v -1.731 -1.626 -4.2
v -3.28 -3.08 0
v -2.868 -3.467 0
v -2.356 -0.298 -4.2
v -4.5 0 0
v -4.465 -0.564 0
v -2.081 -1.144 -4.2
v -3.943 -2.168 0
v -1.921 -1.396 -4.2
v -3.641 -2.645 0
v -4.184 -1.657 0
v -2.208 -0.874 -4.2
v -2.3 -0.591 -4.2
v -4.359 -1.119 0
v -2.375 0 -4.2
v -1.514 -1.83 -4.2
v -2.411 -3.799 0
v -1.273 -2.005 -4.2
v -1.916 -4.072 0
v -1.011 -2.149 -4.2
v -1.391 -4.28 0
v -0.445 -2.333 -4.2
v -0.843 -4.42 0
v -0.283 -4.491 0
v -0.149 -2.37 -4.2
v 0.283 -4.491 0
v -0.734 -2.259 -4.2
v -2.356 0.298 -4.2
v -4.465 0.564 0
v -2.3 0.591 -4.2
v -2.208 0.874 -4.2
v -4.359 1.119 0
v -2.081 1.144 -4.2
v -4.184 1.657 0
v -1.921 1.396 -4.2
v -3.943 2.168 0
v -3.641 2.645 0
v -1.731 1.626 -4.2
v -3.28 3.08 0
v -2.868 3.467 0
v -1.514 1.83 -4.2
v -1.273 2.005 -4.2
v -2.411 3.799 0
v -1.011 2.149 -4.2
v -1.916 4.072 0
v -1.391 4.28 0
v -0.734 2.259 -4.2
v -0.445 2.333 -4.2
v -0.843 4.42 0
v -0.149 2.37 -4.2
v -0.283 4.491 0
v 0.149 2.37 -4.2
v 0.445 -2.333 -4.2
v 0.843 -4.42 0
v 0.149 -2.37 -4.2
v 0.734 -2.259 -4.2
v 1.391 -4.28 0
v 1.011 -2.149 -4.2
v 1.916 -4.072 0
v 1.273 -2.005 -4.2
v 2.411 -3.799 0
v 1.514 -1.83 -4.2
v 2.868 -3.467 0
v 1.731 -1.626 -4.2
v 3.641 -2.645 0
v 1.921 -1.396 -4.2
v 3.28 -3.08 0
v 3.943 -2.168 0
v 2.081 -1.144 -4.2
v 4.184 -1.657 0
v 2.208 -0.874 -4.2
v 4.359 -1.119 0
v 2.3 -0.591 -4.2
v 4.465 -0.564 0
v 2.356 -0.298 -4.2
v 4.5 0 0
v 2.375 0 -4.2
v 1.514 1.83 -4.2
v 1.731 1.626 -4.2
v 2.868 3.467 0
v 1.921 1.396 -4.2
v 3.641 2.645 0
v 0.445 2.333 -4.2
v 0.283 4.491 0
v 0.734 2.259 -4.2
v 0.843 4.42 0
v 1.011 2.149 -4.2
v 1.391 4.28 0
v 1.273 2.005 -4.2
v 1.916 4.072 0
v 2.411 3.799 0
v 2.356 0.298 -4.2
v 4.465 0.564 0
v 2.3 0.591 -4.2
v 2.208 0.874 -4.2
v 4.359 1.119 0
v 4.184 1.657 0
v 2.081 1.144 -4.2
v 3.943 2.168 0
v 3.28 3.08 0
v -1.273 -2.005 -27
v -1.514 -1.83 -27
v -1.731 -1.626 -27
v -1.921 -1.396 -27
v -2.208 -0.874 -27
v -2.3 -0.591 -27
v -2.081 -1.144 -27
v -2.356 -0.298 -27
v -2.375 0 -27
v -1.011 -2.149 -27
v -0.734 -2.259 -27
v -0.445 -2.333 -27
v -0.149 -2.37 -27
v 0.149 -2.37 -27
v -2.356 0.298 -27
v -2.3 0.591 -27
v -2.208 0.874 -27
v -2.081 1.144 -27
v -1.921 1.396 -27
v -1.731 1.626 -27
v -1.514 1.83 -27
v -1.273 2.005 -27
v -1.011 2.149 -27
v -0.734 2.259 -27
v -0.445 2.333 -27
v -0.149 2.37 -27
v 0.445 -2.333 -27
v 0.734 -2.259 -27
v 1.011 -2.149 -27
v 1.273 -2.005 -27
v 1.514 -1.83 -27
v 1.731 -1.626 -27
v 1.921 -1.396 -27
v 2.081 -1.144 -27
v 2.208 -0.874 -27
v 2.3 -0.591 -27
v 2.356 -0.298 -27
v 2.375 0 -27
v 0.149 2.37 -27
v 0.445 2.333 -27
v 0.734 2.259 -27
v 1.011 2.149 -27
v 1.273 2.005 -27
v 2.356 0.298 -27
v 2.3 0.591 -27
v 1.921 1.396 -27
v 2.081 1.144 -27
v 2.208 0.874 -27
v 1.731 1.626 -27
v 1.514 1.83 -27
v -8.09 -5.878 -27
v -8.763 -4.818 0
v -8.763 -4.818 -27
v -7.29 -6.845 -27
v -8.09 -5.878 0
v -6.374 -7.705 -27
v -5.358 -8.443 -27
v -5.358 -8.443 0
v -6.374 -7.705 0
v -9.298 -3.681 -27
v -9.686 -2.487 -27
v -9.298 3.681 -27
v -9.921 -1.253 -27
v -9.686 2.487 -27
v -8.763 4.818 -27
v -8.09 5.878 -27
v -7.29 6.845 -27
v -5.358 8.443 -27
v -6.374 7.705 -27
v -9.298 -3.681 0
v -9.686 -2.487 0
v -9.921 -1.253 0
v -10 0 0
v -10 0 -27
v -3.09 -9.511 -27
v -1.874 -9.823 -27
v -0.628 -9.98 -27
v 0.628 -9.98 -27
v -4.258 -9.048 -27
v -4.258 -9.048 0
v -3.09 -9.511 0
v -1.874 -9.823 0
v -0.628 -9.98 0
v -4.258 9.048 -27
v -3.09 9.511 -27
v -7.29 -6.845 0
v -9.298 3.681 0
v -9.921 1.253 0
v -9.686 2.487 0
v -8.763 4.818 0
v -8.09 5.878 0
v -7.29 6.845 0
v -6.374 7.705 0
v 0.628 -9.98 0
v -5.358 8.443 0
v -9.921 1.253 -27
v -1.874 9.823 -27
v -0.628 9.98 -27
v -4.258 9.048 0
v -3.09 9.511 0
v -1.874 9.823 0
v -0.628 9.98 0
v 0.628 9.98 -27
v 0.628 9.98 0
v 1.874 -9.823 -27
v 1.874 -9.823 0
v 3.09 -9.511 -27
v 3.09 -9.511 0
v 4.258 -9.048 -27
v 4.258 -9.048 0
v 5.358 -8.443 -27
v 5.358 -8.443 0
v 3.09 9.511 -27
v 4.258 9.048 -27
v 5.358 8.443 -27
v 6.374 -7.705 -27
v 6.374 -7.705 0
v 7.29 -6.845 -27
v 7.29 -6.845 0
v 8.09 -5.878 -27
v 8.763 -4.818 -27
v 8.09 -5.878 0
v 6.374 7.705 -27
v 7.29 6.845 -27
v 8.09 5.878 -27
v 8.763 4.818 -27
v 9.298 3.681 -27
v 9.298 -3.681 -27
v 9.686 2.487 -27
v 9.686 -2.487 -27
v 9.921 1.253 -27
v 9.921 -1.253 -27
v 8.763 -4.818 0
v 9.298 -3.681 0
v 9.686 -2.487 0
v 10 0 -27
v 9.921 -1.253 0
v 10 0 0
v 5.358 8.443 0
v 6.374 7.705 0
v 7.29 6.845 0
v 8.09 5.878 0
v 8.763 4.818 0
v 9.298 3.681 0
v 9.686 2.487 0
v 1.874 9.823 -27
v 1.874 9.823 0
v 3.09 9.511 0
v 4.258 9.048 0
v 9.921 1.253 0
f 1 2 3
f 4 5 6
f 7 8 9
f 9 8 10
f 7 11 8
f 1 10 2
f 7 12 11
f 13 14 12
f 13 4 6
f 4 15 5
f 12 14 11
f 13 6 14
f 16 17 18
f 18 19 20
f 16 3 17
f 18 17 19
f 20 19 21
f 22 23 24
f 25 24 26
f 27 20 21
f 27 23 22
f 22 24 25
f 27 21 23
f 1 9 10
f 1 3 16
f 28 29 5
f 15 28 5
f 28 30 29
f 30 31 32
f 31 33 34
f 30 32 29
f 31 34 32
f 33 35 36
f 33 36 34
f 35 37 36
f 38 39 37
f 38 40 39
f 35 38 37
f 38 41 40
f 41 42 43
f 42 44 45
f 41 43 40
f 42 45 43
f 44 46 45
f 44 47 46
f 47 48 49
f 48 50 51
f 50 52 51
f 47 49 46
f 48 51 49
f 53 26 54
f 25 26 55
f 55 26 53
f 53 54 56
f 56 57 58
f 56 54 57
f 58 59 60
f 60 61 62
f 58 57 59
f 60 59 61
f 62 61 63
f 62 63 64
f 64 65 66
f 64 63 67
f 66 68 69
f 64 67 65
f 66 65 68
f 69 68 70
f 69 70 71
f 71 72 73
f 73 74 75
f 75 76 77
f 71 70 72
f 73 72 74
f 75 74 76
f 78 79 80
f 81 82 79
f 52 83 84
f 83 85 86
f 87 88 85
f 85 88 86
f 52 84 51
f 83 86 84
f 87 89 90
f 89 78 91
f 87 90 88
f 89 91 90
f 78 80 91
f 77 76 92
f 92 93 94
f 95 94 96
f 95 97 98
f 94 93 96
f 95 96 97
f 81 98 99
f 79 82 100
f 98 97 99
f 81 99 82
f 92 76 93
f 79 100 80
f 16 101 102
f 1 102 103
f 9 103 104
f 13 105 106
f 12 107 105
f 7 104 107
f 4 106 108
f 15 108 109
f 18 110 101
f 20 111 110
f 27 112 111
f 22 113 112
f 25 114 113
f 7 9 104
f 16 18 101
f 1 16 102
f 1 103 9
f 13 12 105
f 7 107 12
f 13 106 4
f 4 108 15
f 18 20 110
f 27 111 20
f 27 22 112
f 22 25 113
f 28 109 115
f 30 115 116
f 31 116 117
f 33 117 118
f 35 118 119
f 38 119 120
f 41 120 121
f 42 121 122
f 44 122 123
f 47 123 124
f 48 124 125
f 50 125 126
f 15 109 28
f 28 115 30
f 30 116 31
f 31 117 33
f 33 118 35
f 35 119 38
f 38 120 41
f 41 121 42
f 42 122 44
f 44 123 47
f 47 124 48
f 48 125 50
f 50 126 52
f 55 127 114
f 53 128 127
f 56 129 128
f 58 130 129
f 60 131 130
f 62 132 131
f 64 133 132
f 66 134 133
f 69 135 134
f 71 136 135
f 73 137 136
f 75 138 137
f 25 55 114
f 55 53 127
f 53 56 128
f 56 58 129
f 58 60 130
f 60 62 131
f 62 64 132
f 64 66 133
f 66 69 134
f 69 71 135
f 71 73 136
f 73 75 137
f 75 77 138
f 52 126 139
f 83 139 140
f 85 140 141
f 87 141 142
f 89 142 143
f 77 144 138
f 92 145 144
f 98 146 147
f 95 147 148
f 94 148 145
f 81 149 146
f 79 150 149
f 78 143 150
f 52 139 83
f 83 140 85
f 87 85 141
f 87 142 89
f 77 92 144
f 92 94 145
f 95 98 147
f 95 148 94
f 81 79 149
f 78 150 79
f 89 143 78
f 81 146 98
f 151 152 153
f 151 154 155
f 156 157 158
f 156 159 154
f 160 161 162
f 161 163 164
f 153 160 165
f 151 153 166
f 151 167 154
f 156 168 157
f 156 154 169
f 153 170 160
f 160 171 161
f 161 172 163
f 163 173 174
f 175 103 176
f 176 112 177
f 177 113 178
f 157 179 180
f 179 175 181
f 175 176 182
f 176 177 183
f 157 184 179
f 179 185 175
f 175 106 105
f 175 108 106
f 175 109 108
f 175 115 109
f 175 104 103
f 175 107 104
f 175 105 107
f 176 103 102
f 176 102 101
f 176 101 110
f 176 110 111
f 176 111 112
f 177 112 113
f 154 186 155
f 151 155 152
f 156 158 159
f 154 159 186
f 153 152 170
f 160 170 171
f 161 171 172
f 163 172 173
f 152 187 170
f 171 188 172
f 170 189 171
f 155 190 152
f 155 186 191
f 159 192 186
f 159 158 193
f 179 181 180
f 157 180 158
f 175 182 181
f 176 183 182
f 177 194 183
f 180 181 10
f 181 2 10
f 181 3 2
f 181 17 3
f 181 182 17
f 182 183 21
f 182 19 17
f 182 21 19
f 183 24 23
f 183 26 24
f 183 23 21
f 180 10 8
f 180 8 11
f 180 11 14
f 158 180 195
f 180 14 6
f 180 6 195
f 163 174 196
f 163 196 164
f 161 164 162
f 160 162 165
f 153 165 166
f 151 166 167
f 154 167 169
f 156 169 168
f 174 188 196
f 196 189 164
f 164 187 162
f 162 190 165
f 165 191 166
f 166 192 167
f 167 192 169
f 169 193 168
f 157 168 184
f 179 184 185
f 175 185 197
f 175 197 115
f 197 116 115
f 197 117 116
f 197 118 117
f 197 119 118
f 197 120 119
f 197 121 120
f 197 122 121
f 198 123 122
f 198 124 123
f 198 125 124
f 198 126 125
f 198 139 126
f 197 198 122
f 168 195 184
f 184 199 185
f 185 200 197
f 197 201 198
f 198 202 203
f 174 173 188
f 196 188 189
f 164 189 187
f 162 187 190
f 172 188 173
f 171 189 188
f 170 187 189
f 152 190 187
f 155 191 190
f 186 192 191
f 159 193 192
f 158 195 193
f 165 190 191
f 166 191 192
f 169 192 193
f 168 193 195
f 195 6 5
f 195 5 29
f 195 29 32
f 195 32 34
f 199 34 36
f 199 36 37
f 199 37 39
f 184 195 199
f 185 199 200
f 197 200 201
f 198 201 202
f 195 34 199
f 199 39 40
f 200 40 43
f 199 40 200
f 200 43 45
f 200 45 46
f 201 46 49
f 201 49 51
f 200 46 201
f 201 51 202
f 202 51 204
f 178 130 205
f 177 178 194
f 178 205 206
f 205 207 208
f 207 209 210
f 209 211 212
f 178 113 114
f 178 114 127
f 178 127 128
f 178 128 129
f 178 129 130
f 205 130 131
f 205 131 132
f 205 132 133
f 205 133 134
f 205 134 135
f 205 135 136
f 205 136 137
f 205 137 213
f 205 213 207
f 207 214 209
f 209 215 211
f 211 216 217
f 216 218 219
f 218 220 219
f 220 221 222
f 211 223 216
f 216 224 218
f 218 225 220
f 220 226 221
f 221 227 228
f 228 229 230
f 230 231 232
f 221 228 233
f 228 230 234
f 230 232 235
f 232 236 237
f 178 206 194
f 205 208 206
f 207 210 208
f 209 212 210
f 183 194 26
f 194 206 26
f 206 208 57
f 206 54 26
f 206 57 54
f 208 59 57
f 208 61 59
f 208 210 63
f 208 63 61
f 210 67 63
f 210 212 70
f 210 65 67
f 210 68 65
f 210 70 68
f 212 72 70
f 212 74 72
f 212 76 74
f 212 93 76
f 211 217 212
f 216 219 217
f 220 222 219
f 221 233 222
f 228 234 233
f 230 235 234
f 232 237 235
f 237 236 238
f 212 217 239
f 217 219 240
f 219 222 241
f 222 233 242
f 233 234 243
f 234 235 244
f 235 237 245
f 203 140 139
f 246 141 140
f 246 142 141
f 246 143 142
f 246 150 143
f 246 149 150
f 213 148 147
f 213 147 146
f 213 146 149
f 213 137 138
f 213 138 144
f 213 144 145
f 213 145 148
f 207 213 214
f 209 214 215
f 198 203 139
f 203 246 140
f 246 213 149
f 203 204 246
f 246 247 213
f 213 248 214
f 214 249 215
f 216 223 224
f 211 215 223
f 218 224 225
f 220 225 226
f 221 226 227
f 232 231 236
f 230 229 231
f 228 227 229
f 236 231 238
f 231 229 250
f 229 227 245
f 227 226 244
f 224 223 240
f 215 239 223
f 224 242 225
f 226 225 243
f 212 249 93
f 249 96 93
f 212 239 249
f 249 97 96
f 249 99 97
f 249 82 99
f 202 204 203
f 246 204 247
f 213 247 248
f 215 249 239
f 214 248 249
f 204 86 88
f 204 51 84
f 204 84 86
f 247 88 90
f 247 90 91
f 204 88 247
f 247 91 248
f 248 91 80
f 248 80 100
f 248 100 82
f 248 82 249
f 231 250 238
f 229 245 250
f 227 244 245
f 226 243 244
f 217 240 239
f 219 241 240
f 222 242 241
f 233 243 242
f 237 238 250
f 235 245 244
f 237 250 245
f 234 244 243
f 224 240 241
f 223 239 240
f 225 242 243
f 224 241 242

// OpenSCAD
$fn = 50;

difference() {
	union() {
		translate(v = [0, 0, -27.0]) {
			cylinder(h = 27, r = 10.0);
		}
	}
	union() {
		translate(v = [0, 0, 0]) {
			rotate(a = [0, 0, 0]) {
				difference() {
					union() {
						translate(v = [0, 0, -30.0]) {
							cylinder(h = 30, r = 2.25);
						}
						translate(v = [0, 0, -4.2]) {
							cylinder(h = 4.2, r1 = 2.375, r2 = 4.5);
						}
						translate(v = [0, 0, -30.0]) {
							cylinder(h = 30, r = 2.375);
						}
						translate(v = [0, 0, -30.0]) {
							cylinder(h = 30, r = 2.25);
						}
					}
					union();
				}
			}
		}
	}
}
